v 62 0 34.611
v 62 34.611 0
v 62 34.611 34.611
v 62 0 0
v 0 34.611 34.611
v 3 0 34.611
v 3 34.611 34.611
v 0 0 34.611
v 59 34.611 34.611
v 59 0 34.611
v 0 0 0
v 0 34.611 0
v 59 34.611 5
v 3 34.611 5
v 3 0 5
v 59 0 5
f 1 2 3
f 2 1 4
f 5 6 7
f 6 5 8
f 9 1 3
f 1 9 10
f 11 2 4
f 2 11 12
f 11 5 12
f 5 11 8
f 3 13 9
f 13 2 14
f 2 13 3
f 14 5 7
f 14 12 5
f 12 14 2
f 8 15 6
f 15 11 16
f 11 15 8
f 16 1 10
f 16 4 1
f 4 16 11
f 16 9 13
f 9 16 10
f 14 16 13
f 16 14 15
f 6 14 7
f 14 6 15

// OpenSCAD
golden_ratio = 1.618;
FN = 100;

arm_thickness = 3; // Thickness of the arm-plate, this should fit a 3mm screw
plate_thickness = 5; //
arm_distance = 56; // The distance between the arm-plates
delta_x = arm_thickness; // The position for the hole from the edge

// Make hole for the screw + nut
cylinder_diameter = 3; // hole diameter for the screw
cylinder_length = 15; // length of the screw..?
box_width = 5.5; // width of a 3mm hex nut
box_height = 2.5; // ... height of a 3mm hex nut

// DERIVED QUANTITIES
plate_width = arm_distance +  2 * (delta_x + 0.5 * arm_thickness); // Head plate width
plate_height = arm_distance / golden_ratio; // Head plate height
arm_width = plate_height; // Of course, arm plate width should be same as head-plate height
arm_length = plate_height; // I dont know, lets do this..
box_thickness = arm_thickness; //

// Define the location for the holes
hole_location_1 = [delta_x, delta_x];
hole_location_2 = [plate_width - delta_x, delta_x];
hole_location_3 = [delta_x, plate_height - delta_x];
hole_location_4 = [plate_width - delta_x, plate_height - delta_x];

screw_location_1 = [0, delta_x, arm_thickness / 2 ];
screw_location_2 = [0, arm_length - delta_x, arm_thickness / 2 ];

box_location_1 = [cylinder_length / 2, delta_x, arm_thickness / 2 ];
box_location_2 = [cylinder_length / 2, arm_length - delta_x, arm_thickness / 2 ];

module HeadPlate() {
    difference() {
        cube([plate_width, plate_height, plate_thickness]);
        union() {
            translate(hole_location_1) {cylinder(h = arm_thickness + 1, r = cylinder_diameter / 2, $fn=FN);}
            translate(hole_location_2) {cylinder(h = arm_thickness + 1, r = cylinder_diameter / 2, $fn=FN);}
            translate(hole_location_3) {cylinder(h = arm_thickness + 1, r = cylinder_diameter / 2, $fn=FN);}
            translate(hole_location_4) {cylinder(h = arm_thickness + 1, r = cylinder_diameter / 2, $fn=FN);}
        };
    }
}

module ArmPlate(){
    // Now make one arm...
    difference() {
        cube([arm_width, arm_length, arm_thickness]);
        union() {
            // Screw locations
            translate(screw_location_1) {rotate([0, 90, 0]) {cylinder(h = cylinder_length, r = cylinder_diameter / 2, $fn =
            FN);
            }}
            translate(screw_location_2) {rotate([0, 90, 0]) {cylinder(h = cylinder_length, r = cylinder_diameter / 2, $fn =
            FN);
            }}
            // Box locations
            translate(box_location_1) {cube([box_height, box_width, arm_thickness], center = true);}
            translate(box_location_2) {cube([box_height, box_width, arm_thickness], center = true);}
        }}
}



new_plate_width = arm_distance +  2 * arm_thickness;

difference(){
    cube([new_plate_width, arm_width, arm_length]);
    translate([arm_thickness, 0, plate_thickness]){
        cube([arm_distance, arm_width, arm_length]);
    };
}

// HeadPlate();
//ArmPlate();
